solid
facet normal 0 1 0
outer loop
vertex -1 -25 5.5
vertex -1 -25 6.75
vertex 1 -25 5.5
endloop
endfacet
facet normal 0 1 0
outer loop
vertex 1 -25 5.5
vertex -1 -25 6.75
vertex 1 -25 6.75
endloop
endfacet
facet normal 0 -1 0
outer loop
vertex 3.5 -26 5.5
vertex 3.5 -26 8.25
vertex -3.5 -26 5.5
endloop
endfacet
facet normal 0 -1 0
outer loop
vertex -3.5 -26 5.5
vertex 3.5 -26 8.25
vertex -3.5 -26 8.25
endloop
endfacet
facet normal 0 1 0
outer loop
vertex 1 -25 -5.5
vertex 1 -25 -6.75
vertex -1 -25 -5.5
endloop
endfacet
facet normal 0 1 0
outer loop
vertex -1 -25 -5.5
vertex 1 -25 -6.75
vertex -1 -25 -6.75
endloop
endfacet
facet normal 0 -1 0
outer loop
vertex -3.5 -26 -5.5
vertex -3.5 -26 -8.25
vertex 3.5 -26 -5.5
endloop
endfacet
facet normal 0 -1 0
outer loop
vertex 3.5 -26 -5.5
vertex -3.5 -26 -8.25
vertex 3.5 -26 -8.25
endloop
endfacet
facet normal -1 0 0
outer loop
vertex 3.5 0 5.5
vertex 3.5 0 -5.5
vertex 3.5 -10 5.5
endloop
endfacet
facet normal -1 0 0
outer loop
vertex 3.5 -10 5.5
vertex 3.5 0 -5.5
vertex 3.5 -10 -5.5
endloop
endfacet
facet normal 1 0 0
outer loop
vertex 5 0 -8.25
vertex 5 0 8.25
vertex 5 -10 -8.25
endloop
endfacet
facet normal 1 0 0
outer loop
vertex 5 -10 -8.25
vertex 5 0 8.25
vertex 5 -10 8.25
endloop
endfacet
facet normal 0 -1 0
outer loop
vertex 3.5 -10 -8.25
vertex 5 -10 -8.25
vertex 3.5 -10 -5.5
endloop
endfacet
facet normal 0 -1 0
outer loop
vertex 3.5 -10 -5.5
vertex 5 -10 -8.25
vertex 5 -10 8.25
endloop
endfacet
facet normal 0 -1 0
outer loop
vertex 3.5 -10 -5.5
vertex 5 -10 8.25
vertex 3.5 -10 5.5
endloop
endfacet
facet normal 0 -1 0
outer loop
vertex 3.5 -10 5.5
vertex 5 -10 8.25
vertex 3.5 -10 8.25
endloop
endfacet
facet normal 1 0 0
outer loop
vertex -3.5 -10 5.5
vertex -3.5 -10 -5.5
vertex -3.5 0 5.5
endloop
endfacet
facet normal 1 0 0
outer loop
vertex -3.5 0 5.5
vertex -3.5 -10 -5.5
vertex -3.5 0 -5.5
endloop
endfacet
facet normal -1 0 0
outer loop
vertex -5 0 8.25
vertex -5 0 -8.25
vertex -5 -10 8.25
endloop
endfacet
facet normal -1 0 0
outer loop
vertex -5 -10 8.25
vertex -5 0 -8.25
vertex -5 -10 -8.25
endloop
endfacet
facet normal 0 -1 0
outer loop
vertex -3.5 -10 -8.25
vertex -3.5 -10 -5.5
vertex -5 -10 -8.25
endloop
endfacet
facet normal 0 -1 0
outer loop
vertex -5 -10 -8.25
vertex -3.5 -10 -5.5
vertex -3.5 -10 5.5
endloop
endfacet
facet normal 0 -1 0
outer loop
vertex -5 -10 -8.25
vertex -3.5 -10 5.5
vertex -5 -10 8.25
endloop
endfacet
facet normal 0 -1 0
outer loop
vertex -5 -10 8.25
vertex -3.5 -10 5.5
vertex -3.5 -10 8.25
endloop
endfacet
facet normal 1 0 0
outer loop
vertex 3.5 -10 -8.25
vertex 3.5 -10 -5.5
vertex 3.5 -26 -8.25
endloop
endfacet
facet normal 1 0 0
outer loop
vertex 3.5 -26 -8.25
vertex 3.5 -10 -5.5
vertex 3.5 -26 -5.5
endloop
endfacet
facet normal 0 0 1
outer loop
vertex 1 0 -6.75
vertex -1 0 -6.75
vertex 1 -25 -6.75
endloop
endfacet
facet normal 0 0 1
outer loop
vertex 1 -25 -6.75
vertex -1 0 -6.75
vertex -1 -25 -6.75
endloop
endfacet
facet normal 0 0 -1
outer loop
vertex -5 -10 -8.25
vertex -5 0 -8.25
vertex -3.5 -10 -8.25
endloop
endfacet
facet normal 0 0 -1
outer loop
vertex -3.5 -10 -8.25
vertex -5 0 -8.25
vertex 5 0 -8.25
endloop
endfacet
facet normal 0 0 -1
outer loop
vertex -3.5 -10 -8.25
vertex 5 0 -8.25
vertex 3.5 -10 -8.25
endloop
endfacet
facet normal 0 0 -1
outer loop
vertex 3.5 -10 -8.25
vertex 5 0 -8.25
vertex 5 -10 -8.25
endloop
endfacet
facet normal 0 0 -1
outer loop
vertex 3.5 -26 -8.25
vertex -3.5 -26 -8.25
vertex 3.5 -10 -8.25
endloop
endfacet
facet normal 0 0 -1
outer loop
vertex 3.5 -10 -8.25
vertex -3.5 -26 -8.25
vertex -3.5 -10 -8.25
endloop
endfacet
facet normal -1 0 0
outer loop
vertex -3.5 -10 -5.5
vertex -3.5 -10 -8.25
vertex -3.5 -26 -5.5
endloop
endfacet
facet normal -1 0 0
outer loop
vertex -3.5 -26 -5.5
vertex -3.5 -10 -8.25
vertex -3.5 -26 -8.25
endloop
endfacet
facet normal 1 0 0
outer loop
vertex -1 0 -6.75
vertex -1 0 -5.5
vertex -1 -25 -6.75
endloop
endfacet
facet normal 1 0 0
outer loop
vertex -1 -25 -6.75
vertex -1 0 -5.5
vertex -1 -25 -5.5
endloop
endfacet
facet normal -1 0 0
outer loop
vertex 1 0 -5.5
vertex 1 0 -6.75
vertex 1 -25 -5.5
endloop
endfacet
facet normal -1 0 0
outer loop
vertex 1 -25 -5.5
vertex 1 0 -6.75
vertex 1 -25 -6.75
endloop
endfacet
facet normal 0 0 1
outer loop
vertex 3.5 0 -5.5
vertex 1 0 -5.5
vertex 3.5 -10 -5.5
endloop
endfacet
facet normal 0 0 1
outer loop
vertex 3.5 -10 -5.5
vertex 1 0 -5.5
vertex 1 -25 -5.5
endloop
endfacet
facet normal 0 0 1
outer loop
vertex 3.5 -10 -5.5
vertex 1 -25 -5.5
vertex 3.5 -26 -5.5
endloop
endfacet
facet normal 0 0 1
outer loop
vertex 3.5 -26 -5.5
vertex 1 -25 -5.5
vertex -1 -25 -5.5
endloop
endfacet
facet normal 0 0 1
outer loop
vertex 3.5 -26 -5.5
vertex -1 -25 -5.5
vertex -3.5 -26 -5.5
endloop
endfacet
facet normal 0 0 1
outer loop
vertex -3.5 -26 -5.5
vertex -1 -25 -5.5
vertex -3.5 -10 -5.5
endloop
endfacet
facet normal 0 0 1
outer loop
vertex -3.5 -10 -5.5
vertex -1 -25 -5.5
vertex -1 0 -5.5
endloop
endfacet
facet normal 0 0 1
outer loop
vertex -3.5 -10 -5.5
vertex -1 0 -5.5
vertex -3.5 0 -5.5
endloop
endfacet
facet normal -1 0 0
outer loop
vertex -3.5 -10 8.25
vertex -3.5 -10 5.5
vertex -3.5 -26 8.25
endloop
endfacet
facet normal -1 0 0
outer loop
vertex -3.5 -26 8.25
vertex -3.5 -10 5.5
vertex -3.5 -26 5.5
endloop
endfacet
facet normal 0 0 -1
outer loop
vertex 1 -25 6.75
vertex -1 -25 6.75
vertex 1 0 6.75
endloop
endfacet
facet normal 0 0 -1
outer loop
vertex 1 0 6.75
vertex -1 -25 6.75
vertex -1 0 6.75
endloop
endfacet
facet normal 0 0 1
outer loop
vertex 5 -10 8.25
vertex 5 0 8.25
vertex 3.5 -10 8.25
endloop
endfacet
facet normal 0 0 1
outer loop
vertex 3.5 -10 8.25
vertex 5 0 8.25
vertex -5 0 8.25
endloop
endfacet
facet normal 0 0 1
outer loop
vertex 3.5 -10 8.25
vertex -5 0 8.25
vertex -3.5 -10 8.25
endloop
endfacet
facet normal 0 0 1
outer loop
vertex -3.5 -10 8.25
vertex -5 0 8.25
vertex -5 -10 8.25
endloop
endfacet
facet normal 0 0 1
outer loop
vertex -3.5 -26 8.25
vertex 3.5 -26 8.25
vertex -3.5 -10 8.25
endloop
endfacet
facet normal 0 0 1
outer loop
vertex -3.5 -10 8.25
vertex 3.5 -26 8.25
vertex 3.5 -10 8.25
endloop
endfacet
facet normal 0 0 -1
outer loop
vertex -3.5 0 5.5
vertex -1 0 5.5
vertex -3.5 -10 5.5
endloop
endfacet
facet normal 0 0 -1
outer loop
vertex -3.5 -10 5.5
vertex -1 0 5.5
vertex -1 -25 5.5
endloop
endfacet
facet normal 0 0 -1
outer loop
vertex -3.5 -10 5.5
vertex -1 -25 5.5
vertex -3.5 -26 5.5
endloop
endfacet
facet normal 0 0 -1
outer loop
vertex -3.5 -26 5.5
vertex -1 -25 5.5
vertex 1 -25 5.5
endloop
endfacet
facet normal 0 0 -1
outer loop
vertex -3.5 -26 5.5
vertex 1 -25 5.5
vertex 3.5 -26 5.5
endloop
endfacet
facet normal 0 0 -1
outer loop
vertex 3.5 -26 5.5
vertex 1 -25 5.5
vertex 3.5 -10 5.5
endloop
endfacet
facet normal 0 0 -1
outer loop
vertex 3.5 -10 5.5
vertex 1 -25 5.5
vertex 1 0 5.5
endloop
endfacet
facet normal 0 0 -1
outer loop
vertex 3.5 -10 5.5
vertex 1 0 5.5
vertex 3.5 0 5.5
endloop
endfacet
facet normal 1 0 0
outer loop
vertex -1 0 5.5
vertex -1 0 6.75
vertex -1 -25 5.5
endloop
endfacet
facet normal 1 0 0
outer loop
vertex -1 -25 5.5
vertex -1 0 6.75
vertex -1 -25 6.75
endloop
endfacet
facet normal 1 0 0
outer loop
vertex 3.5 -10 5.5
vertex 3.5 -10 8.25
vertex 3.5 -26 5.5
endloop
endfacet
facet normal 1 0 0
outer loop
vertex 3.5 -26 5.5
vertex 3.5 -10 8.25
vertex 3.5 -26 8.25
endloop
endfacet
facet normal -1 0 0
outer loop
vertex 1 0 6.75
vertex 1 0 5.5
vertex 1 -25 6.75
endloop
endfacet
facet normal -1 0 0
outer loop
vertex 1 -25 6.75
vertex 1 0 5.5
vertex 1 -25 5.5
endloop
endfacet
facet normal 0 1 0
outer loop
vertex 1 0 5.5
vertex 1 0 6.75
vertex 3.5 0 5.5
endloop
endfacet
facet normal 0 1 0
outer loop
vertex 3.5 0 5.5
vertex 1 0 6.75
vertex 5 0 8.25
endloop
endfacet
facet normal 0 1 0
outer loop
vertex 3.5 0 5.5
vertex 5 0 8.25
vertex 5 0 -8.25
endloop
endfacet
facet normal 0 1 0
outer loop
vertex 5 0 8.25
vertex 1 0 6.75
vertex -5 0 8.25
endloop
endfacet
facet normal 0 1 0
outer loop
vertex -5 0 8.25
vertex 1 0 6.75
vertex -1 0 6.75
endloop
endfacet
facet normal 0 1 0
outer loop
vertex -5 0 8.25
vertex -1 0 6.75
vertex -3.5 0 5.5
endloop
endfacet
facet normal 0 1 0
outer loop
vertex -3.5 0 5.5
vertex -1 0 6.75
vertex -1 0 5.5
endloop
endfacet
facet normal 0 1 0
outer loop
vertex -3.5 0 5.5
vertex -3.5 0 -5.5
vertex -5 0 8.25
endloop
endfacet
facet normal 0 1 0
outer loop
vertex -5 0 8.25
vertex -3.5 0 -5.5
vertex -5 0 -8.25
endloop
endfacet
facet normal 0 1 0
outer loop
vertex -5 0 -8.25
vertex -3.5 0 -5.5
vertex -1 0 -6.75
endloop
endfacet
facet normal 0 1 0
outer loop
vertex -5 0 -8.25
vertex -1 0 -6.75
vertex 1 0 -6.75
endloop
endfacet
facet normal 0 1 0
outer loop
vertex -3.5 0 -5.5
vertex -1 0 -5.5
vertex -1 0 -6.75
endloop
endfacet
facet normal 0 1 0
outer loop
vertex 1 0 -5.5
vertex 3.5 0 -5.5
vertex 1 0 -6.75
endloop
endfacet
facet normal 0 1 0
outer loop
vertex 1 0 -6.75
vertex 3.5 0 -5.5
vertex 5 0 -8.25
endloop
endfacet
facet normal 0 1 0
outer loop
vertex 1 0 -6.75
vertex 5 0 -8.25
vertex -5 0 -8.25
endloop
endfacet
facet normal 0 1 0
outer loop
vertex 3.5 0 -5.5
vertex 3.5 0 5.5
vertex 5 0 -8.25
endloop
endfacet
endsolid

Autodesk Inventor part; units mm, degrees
ref_plane "YZ Plane" through (0, 0, 0) normal (1, 0, 0) x (0, 1, 0)
ref_plane "XZ Plane" through (0, 0, 0) normal (0, 1, 0) x (-1, 0, 0)
ref_plane "XY Plane" through (0, 0, 0) normal (0, 0, 1) x (1, 0, 0)
sketch "Sketch1" plane through (0, 0, 0) normal (0, 1, 0) x (-1, 0, 0)
  line L0 (1, 6.75) -> (3.5, 6.75)
  line L1 (3.5, 6.75) -> (3.5, 5.5)
  line L2 (3.5, 5.5) -> (1, 5.5)
  line L3 (1, 5.5) -> (1, 6.75)
  line L4 (1, 6.75) -> (3.5, 5.5) construction
  line L5 (3.5, 6.75) -> (1, 5.5) construction
  line L6 (1, -5.5) -> (3.5, -5.5)
  line L7 (3.5, -5.5) -> (3.5, -6.75)
  line L8 (3.5, -6.75) -> (1, -6.75)
  line L9 (1, -6.75) -> (1, -5.5)
  line L10 (1, -5.5) -> (3.5, -6.75) construction
  line L11 (3.5, -5.5) -> (1, -6.75) construction
  line L12 (-1, 6.75) -> (-3.5, 6.75)
  line L13 (-3.5, 6.75) -> (-3.5, 5.5)
  line L14 (-3.5, 5.5) -> (-1, 5.5)
  line L15 (-1, 5.5) -> (-1, 6.75)
  line L16 (-1, 6.75) -> (-3.5, 5.5) construction
  line L17 (-3.5, 6.75) -> (-1, 5.5) construction
  line L18 (-1, -5.5) -> (-3.5, -5.5)
  line L19 (-3.5, -5.5) -> (-3.5, -6.75)
  line L20 (-3.5, -6.75) -> (-1, -6.75)
  line L21 (-1, -6.75) -> (-1, -5.5)
  line L22 (-1, -5.5) -> (-3.5, -6.75) construction
  line L23 (-3.5, -5.5) -> (-1, -6.75) construction
  line L24 (3.5, -6.75) -> (-3.5, -6.75)
  line L25 (-3.5, -6.75) -> (-3.5, -8.25)
  line L26 (-3.5, -8.25) -> (3.5, -8.25)
  line L27 (3.5, -8.25) -> (3.5, -6.75)
  line L28 (3.5, 6.75) -> (-3.5, 6.75)
  line L29 (-3.5, 6.75) -> (-3.5, 8.25)
  line L30 (-3.5, 8.25) -> (3.5, 8.25)
  line L31 (3.5, 8.25) -> (3.5, 6.75)
  point P0 (0, 0)
  point P1 (2.25, 6.125)
  point P2 (2.25, -6.125)
  point P3 (-2.25, 6.125)
  point P4 (-2.25, -6.125)
  point P5 (2.25, 6.125)
  point P6 (2.25, -6.125)
  point P7 (-2.25, 6.125)
  point P8 (-2.25, -6.125)
  point P9 (2.25, -6.125)
  point P10 (-2.25, -6.125)
  point P11 (2.25, 6.125)
  point P12 (-2.25, 6.125)
  dimension "d0" = 2
  dimension "d1" = 11
  dimension "d2" = 5.5
  dimension "d3" = 1
  dimension "d5" = 2.5
  dimension "d6" = 13.5
  dimension "d7" = 1.5
extrude "Extrusion1" add sketch "Sketch1" against normal blind 25
sketch "Sketch2" plane through (0, 0, 0) normal (0, 1, 0) x (1, 0, 0)
  line L0 (3.5, 5.5) -> (3.5, 8.25) projected
  line L1 (3.5, 8.25) -> (5, 8.25)
  line L2 (5, 8.25) -> (5, -8.25)
  line L3 (5, -8.25) -> (3.5, -8.25)
  line L4 (3.5, -8.25) -> (3.5, 8.25)
  line L5 (-3.5, 8.25) -> (-3.5, 5.5) projected
  line L6 (-3.5, 8.25) -> (-5, 8.25)
  line L7 (-5, 8.25) -> (-5, -8.25)
  line L8 (-5, -8.25) -> (-3.5, -8.25)
  line L9 (-3.5, -8.25) -> (-3.5, 8.25)
  point P0 (0, 0)
  dimension "d10" = 1.5
extrude "Extrusion2" add sketch "Sketch2" against normal blind 10
sketch "Sketch3" plane through (0, -25, 0) normal (0, -1, 0) x (1, 0, 0)
  line L0 (-3.5, 5.5) -> (-1, 5.5) projected
  line L1 (3.5, 5.5) -> (3.5, 8.25) projected
  line L2 (-3.5, 5.5) -> (3.5, 5.5)
  line L3 (3.5, 5.5) -> (3.5, 8.25)
  line L4 (3.5, 8.25) -> (-3.5, 8.25)
  line L5 (-3.5, 8.25) -> (-3.5, 5.5)
  line L6 (3.5, -5.5) -> (1, -5.5) projected
  line L7 (-3.5, -5.5) -> (-3.5, -8.25) projected
  line L8 (3.5, -5.5) -> (-3.5, -5.5)
  line L9 (-3.5, -5.5) -> (-3.5, -8.25)
  line L10 (-3.5, -8.25) -> (3.5, -8.25)
  line L11 (3.5, -8.25) -> (3.5, -5.5)
  point P0 (0, 0)
extrude "Extrusion3" add sketch "Sketch3" along normal blind 1
equation "\"d2\" = 0.5 * d1"
equation "\"d3\" = 0.5 * d0"
properties part number "Colorimeter_Mounting-Tool"
